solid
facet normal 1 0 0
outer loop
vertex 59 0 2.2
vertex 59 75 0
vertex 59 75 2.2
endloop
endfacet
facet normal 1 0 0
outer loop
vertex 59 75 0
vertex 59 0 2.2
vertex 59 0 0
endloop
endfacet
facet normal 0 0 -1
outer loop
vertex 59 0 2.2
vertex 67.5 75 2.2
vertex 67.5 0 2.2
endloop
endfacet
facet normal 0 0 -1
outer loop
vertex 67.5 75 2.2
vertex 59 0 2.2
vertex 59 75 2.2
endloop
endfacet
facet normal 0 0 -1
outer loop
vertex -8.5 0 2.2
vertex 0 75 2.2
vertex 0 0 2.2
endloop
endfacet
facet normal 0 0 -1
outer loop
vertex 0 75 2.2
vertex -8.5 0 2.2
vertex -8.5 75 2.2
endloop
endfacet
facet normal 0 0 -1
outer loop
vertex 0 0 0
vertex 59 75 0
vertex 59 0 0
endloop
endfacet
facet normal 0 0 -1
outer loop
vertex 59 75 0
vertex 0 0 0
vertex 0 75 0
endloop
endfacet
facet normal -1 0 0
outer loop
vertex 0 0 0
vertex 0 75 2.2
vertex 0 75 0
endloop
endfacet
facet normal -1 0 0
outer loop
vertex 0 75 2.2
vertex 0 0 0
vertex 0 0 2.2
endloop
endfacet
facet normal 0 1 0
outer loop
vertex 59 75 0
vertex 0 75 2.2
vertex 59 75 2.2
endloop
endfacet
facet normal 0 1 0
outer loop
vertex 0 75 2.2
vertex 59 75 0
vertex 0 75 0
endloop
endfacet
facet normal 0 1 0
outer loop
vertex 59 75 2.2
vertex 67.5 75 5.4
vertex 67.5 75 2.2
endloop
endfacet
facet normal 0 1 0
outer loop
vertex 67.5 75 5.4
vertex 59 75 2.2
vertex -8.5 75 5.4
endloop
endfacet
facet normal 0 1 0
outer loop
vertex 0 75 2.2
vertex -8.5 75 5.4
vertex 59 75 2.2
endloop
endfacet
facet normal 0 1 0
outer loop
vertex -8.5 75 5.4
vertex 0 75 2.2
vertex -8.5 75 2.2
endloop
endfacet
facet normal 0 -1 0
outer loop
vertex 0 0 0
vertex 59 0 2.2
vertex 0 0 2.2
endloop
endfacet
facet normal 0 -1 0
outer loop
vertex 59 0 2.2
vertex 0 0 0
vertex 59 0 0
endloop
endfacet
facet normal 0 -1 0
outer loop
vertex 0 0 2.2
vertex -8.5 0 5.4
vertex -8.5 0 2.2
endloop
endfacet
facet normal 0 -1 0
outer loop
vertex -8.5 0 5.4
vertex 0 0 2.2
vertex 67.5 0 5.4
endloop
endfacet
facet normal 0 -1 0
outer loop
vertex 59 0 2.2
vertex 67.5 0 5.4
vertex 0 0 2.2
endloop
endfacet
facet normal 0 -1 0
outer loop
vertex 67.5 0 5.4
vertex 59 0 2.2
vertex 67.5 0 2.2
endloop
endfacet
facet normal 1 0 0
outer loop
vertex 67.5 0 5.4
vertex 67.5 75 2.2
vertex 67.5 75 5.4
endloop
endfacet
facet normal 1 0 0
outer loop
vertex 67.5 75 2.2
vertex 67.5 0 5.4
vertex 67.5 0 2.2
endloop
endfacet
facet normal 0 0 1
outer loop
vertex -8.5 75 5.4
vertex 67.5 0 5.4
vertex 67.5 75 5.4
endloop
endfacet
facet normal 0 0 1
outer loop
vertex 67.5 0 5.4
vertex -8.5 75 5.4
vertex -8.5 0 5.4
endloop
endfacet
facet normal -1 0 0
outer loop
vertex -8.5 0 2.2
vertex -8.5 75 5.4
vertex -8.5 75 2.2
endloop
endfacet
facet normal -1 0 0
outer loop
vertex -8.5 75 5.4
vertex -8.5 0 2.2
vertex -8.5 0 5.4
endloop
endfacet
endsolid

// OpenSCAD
// CSG.scad - Basic example of CSG usage

translate([0,0,0]) {
    union() {
        cube(size= [59.0, 75.0, 2.2], center=false);
        translate([-8.5,0,2.2]){
            cube(size= [76.0, 75.0, 3.2], center=false);
            }
        //sphere(10);
        //cube()
    }
}
